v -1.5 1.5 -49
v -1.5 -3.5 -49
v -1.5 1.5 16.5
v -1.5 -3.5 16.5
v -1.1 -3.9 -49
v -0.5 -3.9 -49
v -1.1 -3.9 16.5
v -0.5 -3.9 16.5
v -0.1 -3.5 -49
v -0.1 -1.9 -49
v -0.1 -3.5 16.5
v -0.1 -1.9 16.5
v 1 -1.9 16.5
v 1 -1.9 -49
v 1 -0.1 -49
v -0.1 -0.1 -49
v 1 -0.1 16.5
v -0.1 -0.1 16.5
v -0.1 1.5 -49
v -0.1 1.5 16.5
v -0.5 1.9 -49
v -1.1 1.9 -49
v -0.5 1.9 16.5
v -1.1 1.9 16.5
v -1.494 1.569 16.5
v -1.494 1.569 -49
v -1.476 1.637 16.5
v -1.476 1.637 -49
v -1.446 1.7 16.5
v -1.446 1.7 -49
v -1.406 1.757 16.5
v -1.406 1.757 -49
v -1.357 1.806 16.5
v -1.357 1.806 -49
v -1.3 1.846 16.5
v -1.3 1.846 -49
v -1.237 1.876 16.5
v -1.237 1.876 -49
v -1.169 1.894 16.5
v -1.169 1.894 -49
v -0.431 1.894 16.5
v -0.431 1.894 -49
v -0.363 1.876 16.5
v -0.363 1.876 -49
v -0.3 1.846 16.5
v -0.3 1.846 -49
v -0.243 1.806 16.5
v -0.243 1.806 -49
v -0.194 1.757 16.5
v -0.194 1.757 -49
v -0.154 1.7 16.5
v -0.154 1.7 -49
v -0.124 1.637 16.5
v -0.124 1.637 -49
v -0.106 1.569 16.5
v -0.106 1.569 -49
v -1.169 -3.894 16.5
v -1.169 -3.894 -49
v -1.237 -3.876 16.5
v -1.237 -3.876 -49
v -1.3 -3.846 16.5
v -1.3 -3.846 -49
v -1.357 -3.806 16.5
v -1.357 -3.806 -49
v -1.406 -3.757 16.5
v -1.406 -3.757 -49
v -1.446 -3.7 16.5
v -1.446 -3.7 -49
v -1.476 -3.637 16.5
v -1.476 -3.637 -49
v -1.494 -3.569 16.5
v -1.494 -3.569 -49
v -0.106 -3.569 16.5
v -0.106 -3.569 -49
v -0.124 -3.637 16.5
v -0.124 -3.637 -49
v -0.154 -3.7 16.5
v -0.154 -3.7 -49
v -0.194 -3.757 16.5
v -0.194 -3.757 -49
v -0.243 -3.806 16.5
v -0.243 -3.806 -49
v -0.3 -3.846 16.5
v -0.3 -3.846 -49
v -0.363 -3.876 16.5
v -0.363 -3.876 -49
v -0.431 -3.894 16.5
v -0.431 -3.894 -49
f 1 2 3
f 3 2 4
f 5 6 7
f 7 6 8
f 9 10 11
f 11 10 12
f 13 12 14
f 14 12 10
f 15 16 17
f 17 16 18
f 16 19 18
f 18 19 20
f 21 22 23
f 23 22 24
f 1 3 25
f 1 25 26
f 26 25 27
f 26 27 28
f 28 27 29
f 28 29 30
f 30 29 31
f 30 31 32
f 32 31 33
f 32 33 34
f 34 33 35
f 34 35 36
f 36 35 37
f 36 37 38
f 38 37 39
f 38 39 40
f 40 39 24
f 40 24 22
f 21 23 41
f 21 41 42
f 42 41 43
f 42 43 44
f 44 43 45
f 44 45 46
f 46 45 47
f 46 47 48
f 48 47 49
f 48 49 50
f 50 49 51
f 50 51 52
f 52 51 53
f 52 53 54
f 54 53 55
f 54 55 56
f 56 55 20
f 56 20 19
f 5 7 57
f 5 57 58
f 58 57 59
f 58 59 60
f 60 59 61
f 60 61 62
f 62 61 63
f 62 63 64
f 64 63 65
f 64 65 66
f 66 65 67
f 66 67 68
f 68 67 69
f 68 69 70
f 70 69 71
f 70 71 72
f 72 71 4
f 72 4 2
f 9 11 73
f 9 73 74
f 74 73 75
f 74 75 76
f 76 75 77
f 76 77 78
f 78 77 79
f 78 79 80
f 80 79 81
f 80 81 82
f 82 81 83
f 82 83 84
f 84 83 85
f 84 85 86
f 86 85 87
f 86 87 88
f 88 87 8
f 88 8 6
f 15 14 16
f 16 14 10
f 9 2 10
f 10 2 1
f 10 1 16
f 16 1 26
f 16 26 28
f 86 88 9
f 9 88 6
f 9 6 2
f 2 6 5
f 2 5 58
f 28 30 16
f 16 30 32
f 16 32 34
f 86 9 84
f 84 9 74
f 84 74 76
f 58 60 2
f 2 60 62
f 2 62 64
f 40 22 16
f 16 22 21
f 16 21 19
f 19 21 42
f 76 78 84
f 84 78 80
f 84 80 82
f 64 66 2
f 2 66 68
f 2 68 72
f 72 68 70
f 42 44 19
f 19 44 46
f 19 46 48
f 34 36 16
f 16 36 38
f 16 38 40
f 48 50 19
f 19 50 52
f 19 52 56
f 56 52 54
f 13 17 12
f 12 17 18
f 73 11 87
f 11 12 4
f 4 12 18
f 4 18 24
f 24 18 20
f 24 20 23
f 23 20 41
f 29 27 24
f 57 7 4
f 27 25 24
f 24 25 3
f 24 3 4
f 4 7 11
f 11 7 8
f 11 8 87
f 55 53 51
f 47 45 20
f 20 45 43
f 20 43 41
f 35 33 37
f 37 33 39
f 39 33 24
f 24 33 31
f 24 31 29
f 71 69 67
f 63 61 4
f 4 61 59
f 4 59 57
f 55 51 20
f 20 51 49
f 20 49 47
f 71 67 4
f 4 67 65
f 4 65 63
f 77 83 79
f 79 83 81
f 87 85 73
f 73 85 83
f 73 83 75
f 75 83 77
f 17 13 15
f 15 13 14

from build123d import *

# Parameters (mm, degrees)
BOSS_EXTRUDE1_DEPTH = 21
CUT_EXTRUDE1_DEPTH  = 22.662179022
BOSS_EXTRUDE2_DEPTH = 49
FILLET1_R           = 0.4
SKETCH4_W           = 7.390362968
SKETCH4_H           = 6.925637862
CUT_EXTRUDE2_DEPTH  = 4.5
CUT_EXTRUDE3_DEPTH  = 66.709283971


with BuildPart() as part:
    # Sketch1 → Boss-Extrude1 (new body)
    with BuildSketch(Plane.XY):
        Polygon((0, 0), (2, 0), (2, 2), (3.5, 2), (3.5, -4), (2, -4), (2, -2), (0, -2), (0, -4), (-1.5, -4), (-1.5, 2), (0, 2), align=None)
    extrude(amount=BOSS_EXTRUDE1_DEPTH)

    # Sketch2 → Cut-Extrude1 (cut, through all)
    with BuildSketch(Plane.XY.offset(21)):
        Polygon((-1.5, 2), (-1.5, 1.9), (-0.1, 1.9), (-0.1, -0.1), (2.1, -0.1), (2.1, 1.9), (3.5, 1.9), (3.5, 2), align=None)
        Polygon((-1.5, -4), (3.5, -4), (3.5, -3.9), (2.1, -3.9), (2.1, -1.9), (-0.1, -1.9), (-0.1, -3.9), (-1.5, -3.9), align=None)
    extrude(amount=-CUT_EXTRUDE1_DEPTH, mode=Mode.SUBTRACT)

    # Sketch3 → Boss-Extrude2 (add)
    with BuildSketch(Plane(origin=(0, 0, 0), x_dir=(-1, 0, 0), z_dir=(0, 0, -1))):
        Polygon((-2.1, -0.1), (-2.1, 1.9), (-3.5, 1.9), (-3.5, -3.9), (-2.1, -3.9), (-2.1, -1.9), (0.1, -1.9), (0.1, -3.9), (1.5, -3.9), (1.5, 1.9), (0.1, 1.9), (0.1, -0.1), align=None)
    extrude(amount=BOSS_EXTRUDE2_DEPTH)

    # Fillet1
    fillet1_edges = [part.edges().sort_by_distance(p)[0] for p in [
        (3.5, 1.9, -14),
        (2.1, 1.9, -14),
        (-0.1, 1.9, -14),
        (-1.5, 1.9, -14),
        (-1.5, -3.9, -14),
        (-0.1, -3.9, -14),
        (2.1, -3.9, -14),
        (3.5, -3.9, -14),
    ]]
    fillet(fillet1_edges, radius=FILLET1_R)

    # Sketch4 → Cut-Extrude2 (cut)
    with BuildSketch(Plane.XY.offset(21)):
        with Locations((1.359853511, -0.992123471)):
            Rectangle(SKETCH4_W, SKETCH4_H)
    extrude(amount=-CUT_EXTRUDE2_DEPTH, mode=Mode.SUBTRACT)

    # Sketch5 → Cut-Extrude3 (cut, through all)
    with BuildSketch(Plane.XY.offset(16.5)):
        Polygon((1, -0.1), (1, -4.471305572), (4.036871247, -4.471305572), (4.036871247, 2.64231625), (1, 2.64231625), align=None)
    extrude(amount=-CUT_EXTRUDE3_DEPTH, mode=Mode.SUBTRACT)


solid = part.part
